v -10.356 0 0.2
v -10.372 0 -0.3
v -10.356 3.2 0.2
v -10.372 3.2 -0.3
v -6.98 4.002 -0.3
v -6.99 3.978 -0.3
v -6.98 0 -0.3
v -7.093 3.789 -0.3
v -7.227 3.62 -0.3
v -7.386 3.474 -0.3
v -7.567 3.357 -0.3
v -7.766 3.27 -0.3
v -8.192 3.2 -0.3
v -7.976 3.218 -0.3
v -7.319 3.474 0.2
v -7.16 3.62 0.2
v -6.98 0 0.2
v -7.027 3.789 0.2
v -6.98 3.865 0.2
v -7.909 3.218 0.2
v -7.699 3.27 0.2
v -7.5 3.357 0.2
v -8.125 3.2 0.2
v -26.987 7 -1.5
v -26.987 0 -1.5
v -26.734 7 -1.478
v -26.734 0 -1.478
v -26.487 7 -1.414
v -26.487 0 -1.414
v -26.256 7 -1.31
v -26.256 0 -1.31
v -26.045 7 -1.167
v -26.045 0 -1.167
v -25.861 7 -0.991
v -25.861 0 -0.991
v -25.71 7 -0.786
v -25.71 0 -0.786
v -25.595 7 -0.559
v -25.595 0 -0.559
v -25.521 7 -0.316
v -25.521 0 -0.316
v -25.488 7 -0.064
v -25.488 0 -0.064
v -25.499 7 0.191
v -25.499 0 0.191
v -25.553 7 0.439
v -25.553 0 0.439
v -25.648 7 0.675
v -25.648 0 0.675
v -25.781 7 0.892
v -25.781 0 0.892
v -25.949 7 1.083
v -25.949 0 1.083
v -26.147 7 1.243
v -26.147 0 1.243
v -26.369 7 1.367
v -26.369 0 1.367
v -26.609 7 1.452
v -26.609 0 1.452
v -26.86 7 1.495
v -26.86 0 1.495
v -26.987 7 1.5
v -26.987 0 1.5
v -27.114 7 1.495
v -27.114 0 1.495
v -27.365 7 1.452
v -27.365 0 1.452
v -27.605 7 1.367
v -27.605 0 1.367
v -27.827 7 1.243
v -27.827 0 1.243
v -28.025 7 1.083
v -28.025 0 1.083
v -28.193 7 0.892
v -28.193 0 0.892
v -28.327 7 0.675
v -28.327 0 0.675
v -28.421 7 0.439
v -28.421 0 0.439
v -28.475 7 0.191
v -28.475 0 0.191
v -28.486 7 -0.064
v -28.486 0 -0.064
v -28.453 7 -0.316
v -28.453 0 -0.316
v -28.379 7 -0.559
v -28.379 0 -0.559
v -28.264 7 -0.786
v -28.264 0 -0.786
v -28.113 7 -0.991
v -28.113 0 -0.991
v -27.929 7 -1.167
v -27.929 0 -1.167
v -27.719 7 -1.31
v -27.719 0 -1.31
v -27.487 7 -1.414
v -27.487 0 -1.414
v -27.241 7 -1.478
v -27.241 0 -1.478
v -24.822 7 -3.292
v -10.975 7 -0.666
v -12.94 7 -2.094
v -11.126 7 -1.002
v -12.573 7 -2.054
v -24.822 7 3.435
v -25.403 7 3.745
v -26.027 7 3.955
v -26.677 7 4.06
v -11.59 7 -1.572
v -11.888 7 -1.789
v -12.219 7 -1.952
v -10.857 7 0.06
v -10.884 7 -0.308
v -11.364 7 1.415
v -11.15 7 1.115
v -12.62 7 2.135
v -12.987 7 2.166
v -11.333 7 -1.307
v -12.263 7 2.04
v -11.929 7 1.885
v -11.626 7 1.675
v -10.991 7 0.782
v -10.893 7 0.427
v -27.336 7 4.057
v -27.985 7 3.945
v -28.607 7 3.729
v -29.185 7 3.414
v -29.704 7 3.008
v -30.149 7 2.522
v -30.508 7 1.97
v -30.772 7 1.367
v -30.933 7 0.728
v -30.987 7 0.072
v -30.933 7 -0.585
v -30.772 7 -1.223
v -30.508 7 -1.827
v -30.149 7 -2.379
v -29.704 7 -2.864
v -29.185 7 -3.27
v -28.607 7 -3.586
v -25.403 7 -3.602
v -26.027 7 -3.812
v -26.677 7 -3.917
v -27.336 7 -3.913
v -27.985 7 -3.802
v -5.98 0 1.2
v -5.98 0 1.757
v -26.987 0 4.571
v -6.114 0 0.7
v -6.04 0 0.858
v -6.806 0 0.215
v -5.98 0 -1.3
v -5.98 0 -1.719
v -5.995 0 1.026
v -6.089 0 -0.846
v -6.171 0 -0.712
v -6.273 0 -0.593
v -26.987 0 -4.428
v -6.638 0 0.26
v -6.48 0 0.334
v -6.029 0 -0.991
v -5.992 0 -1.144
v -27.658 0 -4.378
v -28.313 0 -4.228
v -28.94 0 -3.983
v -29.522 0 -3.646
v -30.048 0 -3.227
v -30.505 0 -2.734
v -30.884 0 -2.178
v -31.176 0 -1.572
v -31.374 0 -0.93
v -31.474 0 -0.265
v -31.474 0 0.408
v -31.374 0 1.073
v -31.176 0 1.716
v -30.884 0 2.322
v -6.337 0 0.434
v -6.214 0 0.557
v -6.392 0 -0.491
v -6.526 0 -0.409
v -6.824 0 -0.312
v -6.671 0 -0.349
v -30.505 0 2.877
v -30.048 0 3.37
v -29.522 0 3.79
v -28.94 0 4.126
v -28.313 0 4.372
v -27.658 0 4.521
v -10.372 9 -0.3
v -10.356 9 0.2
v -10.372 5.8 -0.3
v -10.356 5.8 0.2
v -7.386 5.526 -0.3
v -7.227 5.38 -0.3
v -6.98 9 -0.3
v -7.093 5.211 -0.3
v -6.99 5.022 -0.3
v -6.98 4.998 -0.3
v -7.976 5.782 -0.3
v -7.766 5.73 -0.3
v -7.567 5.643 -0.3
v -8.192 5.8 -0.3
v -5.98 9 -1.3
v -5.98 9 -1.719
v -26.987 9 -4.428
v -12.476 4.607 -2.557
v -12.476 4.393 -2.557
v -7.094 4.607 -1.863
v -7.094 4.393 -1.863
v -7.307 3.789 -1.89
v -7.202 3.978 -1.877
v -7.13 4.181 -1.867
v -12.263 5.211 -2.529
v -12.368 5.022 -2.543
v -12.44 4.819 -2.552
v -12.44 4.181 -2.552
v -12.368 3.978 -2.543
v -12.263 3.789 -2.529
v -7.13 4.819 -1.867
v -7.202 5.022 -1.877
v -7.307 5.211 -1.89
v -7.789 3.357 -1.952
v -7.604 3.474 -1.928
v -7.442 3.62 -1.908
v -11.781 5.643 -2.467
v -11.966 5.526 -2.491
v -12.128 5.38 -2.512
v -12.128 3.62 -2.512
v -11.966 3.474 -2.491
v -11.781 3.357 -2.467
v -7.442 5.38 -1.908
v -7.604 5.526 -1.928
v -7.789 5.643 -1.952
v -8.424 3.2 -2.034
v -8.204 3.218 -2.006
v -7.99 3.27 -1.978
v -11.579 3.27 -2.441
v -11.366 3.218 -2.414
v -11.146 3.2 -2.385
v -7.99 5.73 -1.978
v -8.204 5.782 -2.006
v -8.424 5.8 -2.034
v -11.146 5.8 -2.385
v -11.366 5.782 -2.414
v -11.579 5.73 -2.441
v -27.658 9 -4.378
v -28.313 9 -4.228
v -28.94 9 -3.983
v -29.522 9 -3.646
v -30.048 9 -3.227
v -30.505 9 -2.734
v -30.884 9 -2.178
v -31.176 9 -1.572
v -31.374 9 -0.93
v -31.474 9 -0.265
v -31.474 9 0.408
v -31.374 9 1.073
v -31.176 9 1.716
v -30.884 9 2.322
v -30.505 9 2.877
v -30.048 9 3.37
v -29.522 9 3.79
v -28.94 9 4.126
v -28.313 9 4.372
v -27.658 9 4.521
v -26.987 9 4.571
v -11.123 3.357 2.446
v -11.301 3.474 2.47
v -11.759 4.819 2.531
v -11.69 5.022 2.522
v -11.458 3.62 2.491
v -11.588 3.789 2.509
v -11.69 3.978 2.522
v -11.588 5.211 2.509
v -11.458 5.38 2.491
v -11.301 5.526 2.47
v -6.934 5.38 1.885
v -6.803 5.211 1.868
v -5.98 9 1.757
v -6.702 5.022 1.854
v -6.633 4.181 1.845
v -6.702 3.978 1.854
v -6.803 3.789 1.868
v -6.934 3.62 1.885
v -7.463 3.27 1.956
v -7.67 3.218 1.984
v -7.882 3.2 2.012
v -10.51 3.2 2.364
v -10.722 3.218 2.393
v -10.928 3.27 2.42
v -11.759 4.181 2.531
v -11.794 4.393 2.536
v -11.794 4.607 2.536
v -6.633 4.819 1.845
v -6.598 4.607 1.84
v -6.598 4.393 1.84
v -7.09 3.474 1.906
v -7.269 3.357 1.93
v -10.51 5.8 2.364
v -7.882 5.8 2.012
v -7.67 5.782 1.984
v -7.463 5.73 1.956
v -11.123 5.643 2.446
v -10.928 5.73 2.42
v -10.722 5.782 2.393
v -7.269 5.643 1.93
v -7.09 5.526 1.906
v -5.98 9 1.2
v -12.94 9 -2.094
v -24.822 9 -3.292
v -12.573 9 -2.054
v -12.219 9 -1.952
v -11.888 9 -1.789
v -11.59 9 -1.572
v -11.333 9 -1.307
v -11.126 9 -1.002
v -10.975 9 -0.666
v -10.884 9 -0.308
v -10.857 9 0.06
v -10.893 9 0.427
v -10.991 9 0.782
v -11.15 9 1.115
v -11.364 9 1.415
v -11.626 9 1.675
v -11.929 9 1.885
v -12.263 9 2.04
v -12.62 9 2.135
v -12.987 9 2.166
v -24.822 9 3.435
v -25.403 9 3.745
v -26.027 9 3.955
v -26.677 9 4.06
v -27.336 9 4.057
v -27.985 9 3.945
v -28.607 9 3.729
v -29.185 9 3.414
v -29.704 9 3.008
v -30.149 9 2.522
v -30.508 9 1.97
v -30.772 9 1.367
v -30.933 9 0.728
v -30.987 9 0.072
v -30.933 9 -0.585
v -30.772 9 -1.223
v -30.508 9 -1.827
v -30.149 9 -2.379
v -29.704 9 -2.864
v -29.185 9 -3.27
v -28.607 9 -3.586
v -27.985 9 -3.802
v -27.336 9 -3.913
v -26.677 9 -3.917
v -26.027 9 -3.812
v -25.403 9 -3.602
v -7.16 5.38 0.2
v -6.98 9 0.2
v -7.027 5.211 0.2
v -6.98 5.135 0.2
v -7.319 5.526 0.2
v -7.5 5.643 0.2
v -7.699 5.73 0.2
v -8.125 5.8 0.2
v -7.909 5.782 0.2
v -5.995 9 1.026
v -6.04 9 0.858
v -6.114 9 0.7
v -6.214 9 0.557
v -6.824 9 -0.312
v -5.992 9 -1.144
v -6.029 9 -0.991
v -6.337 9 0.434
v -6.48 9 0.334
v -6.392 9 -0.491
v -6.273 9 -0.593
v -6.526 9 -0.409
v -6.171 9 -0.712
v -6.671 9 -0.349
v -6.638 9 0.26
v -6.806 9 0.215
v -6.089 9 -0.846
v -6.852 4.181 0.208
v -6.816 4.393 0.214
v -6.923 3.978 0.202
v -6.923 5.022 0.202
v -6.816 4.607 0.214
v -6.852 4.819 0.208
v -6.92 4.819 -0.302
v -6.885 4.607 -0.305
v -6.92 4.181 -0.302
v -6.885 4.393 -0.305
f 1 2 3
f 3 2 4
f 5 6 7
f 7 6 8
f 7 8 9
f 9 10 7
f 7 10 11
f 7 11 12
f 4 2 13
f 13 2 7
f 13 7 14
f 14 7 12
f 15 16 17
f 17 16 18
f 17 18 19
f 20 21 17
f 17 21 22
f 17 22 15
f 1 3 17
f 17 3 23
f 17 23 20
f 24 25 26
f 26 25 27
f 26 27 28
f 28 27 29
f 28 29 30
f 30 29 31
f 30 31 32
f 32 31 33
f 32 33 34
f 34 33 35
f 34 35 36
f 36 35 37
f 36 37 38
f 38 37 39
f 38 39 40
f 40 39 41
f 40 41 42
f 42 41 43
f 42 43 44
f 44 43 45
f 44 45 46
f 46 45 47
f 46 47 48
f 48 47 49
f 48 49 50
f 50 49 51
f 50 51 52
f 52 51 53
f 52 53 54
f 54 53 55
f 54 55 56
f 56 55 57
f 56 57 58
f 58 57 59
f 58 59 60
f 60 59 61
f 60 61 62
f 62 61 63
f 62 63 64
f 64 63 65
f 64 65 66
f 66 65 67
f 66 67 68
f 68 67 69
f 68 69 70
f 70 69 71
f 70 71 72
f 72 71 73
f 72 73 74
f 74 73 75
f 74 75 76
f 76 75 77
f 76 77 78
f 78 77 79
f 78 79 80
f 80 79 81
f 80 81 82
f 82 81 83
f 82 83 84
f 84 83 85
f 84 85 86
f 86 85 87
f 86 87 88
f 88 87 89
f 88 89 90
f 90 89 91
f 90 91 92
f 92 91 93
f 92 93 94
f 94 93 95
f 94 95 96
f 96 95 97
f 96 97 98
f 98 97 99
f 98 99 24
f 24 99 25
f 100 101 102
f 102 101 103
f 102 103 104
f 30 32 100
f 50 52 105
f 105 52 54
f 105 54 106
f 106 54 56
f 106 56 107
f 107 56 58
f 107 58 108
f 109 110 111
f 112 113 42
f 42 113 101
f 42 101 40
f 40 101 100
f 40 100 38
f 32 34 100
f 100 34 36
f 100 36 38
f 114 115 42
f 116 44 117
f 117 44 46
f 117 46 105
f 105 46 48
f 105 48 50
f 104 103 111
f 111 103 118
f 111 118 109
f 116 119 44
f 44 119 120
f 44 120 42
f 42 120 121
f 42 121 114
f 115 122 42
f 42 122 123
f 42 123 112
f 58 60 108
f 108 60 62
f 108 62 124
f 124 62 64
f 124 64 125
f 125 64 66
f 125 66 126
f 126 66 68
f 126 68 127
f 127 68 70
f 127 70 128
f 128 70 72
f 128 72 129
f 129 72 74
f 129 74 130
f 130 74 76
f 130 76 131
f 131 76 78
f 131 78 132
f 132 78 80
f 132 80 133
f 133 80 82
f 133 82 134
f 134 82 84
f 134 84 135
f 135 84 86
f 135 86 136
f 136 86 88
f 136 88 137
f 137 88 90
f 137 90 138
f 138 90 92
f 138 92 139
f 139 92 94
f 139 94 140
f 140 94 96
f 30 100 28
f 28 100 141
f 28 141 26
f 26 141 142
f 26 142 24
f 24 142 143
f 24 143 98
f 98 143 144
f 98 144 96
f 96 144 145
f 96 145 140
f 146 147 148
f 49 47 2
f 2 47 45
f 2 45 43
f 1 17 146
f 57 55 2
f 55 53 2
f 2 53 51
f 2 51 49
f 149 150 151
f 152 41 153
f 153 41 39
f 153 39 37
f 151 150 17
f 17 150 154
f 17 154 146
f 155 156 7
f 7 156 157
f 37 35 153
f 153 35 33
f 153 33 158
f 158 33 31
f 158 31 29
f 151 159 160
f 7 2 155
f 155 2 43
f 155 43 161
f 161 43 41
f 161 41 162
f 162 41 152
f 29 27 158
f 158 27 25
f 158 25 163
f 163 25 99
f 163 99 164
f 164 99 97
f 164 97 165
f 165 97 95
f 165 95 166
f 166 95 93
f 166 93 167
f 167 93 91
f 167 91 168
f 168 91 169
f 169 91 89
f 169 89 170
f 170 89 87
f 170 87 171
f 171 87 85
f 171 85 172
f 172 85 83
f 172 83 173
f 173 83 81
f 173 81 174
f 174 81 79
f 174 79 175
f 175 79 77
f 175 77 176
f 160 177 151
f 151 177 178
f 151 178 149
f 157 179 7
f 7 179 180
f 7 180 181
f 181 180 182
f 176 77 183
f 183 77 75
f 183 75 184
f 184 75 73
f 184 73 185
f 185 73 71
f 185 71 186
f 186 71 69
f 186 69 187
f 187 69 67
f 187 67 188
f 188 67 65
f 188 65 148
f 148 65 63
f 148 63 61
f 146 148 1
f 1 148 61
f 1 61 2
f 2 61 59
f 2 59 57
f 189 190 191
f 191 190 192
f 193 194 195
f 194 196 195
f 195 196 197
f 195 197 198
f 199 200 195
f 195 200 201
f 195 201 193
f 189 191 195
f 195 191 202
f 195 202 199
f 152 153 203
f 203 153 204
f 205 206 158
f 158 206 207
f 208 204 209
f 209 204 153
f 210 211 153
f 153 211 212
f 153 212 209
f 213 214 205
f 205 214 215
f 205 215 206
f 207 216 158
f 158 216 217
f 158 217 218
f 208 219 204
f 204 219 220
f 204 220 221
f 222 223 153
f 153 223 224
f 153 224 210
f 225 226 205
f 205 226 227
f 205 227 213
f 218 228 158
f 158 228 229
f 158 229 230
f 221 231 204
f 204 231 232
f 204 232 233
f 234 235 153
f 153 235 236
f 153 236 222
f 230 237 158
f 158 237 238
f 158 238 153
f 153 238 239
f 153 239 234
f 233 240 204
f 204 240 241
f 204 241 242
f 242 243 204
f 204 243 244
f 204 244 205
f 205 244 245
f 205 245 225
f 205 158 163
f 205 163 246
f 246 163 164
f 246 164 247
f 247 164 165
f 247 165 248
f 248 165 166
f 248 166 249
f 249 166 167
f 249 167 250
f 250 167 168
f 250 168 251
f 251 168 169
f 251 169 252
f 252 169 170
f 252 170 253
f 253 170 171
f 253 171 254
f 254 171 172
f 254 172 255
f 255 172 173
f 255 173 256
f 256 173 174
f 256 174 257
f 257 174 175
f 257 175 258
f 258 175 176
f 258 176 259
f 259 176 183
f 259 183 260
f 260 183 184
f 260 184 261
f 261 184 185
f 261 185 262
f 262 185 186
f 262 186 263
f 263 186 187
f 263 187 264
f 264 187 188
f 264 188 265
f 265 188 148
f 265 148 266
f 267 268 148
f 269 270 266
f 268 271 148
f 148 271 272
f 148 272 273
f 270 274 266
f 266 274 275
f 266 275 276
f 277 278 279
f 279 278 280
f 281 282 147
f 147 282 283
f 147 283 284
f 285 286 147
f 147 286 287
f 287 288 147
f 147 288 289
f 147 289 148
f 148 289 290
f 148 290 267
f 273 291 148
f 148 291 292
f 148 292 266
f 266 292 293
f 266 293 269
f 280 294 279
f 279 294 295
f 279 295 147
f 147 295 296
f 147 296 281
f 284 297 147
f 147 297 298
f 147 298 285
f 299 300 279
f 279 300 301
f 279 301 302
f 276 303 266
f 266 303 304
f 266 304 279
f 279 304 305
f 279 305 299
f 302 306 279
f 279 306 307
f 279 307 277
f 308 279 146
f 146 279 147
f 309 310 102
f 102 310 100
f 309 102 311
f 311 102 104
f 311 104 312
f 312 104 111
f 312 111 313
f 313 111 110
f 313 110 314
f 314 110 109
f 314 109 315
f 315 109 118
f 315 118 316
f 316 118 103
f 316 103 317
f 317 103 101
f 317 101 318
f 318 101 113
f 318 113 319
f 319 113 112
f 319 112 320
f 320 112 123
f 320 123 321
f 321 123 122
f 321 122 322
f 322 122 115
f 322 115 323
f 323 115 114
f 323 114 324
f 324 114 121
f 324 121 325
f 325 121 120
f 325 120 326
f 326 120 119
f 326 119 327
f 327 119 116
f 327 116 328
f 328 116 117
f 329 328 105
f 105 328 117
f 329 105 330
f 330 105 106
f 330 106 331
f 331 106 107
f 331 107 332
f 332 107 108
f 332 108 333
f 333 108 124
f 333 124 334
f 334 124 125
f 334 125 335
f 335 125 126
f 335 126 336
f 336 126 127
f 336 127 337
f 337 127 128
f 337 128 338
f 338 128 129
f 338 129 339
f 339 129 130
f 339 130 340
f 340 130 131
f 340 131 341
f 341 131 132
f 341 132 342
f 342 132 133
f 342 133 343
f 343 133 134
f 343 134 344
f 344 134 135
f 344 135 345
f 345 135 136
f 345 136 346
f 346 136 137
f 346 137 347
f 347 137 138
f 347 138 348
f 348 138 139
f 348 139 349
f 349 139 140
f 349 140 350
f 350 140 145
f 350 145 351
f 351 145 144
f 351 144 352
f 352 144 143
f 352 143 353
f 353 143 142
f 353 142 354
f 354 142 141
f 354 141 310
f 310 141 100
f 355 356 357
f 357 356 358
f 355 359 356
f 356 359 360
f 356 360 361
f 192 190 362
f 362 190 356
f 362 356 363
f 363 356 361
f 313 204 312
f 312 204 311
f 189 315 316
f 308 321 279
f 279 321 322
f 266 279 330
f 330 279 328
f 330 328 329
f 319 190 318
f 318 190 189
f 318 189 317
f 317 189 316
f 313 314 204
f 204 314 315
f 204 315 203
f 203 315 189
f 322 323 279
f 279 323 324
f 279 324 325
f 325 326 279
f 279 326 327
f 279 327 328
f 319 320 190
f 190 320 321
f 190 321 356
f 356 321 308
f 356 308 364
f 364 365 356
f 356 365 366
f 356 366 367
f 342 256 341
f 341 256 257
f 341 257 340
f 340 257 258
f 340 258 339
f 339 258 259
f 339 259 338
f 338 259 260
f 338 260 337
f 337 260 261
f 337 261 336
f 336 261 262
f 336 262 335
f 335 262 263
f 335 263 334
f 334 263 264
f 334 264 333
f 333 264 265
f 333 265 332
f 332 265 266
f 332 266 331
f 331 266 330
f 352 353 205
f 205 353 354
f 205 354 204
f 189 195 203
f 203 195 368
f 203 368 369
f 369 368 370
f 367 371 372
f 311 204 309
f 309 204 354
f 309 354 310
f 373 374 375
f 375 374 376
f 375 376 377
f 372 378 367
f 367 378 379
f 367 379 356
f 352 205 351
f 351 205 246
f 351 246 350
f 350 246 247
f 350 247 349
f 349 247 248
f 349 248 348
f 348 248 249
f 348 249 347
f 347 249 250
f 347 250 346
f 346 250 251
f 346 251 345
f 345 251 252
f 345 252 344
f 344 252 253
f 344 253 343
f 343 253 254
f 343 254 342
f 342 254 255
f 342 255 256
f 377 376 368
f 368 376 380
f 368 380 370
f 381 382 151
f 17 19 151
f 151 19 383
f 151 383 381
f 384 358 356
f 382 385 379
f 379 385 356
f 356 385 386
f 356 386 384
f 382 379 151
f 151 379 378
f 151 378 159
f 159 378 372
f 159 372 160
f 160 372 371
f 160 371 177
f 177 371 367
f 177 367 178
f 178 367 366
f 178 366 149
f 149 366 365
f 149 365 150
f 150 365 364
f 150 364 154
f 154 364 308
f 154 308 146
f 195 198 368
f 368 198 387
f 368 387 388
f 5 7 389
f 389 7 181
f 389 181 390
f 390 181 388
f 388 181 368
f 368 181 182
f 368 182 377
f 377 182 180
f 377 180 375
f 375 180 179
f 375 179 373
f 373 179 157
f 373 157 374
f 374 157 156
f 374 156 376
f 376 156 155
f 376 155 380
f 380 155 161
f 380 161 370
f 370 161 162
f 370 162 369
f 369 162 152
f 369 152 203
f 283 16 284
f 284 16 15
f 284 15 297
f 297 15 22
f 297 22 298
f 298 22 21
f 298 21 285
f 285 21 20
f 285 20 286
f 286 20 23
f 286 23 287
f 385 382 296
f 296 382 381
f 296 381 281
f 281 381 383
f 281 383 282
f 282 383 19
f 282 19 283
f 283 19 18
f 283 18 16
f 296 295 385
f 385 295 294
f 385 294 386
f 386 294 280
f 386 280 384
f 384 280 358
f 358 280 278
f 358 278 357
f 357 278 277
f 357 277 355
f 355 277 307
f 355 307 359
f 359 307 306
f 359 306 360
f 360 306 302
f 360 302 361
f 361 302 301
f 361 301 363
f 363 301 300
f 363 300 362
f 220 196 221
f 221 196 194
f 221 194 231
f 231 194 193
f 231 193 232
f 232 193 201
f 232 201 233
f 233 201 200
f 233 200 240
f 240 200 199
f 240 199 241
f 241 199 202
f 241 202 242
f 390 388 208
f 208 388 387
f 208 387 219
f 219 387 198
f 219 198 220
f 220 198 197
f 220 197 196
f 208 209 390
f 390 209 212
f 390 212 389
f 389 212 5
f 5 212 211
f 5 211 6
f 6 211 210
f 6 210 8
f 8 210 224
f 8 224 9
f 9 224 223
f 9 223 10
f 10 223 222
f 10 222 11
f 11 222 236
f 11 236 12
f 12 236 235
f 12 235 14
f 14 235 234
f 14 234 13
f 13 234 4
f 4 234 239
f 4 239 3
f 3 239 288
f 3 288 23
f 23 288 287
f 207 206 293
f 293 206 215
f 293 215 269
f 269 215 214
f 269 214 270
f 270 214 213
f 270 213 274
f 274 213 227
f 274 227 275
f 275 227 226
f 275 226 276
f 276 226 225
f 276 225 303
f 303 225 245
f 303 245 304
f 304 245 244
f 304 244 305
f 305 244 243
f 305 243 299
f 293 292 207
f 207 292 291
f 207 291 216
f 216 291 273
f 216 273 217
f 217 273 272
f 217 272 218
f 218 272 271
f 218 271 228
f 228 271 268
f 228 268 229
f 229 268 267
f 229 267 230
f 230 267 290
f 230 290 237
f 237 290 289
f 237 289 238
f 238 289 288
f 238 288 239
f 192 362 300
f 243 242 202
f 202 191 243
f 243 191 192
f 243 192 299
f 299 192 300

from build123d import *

# Parameters (mm, degrees)
SKETCH2_R           = 1.5
BOSS_EXTRUDE1_DEPTH = 7
BOSS_EXTRUDE2_DEPTH = 9
FILLET3_R           = 1
CUT_EXTRUDE1_DEPTH  = 34.304342473


with BuildPart() as part:
    # Sketch2 → Boss-Extrude1 (new body)
    with BuildSketch(Plane(origin=(0, 0, 0), x_dir=(1, 0, 0), z_dir=(0, 1, 0))):
        with BuildLine():
            Line((-12.939762178, 2.094266176), (-24.821781773, 3.29179515))
            ThreePointArc((-24.821781773, 3.29179515), (-30.987291256, -0.071668068), (-24.821747911, -3.435069212))
            Line((-24.821747911, -3.435069212), (-12.987160246, -2.166440487))
            ThreePointArc((-12.987160246, -2.166440487), (-10.8566751, -0.059524017), (-12.939762178, 2.094266176))
        make_face()
        with Locations((-26.987114413, 0)):
            Circle(SKETCH2_R, mode=Mode.SUBTRACT)
    extrude(amount=BOSS_EXTRUDE1_DEPTH)

    # Sketch2<3> → Boss-Extrude2 (add)
    with BuildSketch(Plane(origin=(0, 0, 0), x_dir=(1, 0, 0), z_dir=(0, 1, 0))):
        with BuildLine():
            Line((-5.980021524, -1.757335699), (-5.980297938, -0.2))
            Line((-5.980297938, -0.2), (-10.355629468, -0.2))
            Line((-10.355629468, -0.2), (-10.371987074, 0.3))
            Line((-10.371987074, 0.3), (-5.980159731, 0.3))
            Line((-5.980159731, 0.3), (-5.980159731, 1.71899167))
            Line((-5.980159731, 1.71899167), (-26.987114411, 4.428185187))
            ThreePointArc((-26.987114411, 4.428185187), (-31.48694753, -0.071647931), (-26.987114411, -4.57148105))
            Line((-26.987114411, -4.57148105), (-5.980021524, -1.757335699))
        make_face()
        with BuildLine():
            Line((-12.987160246, -2.166440487), (-24.821747911, -3.435069212))
            ThreePointArc((-24.821747911, -3.435069212), (-30.987291256, -0.071668068), (-24.821781773, 3.29179515))
            Line((-24.821781773, 3.29179515), (-12.939762178, 2.094266176))
            ThreePointArc((-12.939762178, 2.094266176), (-10.8566751, -0.059524017), (-12.987160246, -2.166440487))
        make_face(mode=Mode.SUBTRACT)
    extrude(amount=BOSS_EXTRUDE2_DEPTH)

    # Fillet3
    fillet3_edges = [part.edges().sort_by_distance(p)[0] for p in [
        (-5.980297938, 4.5, 0.2),
        (-5.980159731, 4.5, -0.3),
    ]]
    fillet(fillet3_edges, radius=FILLET3_R)

    # Sketch3 → Cut-Extrude1 (cut, through all)
    with BuildSketch(Plane(origin=(0.125841463, 0, 0.939384066), x_dir=(0.9911461251188364, 0, -0.13277559512921042), z_dir=(0.13277559512921042, 0, 0.9911461251188365))):
        with BuildLine():
            Line((-8.079177289, 3.2), (-10.730603596, 3.2))
            ThreePointArc((-10.730603596, 3.2), (-12.030603596, 4.5), (-10.730603596, 5.8))
            Line((-10.730603596, 5.8), (-8.079177289, 5.8))
            ThreePointArc((-8.079177289, 5.8), (-6.779177289, 4.5), (-8.079177289, 3.2))
        make_face()
    extrude(amount=-CUT_EXTRUDE1_DEPTH, mode=Mode.SUBTRACT)


solid = part.part
